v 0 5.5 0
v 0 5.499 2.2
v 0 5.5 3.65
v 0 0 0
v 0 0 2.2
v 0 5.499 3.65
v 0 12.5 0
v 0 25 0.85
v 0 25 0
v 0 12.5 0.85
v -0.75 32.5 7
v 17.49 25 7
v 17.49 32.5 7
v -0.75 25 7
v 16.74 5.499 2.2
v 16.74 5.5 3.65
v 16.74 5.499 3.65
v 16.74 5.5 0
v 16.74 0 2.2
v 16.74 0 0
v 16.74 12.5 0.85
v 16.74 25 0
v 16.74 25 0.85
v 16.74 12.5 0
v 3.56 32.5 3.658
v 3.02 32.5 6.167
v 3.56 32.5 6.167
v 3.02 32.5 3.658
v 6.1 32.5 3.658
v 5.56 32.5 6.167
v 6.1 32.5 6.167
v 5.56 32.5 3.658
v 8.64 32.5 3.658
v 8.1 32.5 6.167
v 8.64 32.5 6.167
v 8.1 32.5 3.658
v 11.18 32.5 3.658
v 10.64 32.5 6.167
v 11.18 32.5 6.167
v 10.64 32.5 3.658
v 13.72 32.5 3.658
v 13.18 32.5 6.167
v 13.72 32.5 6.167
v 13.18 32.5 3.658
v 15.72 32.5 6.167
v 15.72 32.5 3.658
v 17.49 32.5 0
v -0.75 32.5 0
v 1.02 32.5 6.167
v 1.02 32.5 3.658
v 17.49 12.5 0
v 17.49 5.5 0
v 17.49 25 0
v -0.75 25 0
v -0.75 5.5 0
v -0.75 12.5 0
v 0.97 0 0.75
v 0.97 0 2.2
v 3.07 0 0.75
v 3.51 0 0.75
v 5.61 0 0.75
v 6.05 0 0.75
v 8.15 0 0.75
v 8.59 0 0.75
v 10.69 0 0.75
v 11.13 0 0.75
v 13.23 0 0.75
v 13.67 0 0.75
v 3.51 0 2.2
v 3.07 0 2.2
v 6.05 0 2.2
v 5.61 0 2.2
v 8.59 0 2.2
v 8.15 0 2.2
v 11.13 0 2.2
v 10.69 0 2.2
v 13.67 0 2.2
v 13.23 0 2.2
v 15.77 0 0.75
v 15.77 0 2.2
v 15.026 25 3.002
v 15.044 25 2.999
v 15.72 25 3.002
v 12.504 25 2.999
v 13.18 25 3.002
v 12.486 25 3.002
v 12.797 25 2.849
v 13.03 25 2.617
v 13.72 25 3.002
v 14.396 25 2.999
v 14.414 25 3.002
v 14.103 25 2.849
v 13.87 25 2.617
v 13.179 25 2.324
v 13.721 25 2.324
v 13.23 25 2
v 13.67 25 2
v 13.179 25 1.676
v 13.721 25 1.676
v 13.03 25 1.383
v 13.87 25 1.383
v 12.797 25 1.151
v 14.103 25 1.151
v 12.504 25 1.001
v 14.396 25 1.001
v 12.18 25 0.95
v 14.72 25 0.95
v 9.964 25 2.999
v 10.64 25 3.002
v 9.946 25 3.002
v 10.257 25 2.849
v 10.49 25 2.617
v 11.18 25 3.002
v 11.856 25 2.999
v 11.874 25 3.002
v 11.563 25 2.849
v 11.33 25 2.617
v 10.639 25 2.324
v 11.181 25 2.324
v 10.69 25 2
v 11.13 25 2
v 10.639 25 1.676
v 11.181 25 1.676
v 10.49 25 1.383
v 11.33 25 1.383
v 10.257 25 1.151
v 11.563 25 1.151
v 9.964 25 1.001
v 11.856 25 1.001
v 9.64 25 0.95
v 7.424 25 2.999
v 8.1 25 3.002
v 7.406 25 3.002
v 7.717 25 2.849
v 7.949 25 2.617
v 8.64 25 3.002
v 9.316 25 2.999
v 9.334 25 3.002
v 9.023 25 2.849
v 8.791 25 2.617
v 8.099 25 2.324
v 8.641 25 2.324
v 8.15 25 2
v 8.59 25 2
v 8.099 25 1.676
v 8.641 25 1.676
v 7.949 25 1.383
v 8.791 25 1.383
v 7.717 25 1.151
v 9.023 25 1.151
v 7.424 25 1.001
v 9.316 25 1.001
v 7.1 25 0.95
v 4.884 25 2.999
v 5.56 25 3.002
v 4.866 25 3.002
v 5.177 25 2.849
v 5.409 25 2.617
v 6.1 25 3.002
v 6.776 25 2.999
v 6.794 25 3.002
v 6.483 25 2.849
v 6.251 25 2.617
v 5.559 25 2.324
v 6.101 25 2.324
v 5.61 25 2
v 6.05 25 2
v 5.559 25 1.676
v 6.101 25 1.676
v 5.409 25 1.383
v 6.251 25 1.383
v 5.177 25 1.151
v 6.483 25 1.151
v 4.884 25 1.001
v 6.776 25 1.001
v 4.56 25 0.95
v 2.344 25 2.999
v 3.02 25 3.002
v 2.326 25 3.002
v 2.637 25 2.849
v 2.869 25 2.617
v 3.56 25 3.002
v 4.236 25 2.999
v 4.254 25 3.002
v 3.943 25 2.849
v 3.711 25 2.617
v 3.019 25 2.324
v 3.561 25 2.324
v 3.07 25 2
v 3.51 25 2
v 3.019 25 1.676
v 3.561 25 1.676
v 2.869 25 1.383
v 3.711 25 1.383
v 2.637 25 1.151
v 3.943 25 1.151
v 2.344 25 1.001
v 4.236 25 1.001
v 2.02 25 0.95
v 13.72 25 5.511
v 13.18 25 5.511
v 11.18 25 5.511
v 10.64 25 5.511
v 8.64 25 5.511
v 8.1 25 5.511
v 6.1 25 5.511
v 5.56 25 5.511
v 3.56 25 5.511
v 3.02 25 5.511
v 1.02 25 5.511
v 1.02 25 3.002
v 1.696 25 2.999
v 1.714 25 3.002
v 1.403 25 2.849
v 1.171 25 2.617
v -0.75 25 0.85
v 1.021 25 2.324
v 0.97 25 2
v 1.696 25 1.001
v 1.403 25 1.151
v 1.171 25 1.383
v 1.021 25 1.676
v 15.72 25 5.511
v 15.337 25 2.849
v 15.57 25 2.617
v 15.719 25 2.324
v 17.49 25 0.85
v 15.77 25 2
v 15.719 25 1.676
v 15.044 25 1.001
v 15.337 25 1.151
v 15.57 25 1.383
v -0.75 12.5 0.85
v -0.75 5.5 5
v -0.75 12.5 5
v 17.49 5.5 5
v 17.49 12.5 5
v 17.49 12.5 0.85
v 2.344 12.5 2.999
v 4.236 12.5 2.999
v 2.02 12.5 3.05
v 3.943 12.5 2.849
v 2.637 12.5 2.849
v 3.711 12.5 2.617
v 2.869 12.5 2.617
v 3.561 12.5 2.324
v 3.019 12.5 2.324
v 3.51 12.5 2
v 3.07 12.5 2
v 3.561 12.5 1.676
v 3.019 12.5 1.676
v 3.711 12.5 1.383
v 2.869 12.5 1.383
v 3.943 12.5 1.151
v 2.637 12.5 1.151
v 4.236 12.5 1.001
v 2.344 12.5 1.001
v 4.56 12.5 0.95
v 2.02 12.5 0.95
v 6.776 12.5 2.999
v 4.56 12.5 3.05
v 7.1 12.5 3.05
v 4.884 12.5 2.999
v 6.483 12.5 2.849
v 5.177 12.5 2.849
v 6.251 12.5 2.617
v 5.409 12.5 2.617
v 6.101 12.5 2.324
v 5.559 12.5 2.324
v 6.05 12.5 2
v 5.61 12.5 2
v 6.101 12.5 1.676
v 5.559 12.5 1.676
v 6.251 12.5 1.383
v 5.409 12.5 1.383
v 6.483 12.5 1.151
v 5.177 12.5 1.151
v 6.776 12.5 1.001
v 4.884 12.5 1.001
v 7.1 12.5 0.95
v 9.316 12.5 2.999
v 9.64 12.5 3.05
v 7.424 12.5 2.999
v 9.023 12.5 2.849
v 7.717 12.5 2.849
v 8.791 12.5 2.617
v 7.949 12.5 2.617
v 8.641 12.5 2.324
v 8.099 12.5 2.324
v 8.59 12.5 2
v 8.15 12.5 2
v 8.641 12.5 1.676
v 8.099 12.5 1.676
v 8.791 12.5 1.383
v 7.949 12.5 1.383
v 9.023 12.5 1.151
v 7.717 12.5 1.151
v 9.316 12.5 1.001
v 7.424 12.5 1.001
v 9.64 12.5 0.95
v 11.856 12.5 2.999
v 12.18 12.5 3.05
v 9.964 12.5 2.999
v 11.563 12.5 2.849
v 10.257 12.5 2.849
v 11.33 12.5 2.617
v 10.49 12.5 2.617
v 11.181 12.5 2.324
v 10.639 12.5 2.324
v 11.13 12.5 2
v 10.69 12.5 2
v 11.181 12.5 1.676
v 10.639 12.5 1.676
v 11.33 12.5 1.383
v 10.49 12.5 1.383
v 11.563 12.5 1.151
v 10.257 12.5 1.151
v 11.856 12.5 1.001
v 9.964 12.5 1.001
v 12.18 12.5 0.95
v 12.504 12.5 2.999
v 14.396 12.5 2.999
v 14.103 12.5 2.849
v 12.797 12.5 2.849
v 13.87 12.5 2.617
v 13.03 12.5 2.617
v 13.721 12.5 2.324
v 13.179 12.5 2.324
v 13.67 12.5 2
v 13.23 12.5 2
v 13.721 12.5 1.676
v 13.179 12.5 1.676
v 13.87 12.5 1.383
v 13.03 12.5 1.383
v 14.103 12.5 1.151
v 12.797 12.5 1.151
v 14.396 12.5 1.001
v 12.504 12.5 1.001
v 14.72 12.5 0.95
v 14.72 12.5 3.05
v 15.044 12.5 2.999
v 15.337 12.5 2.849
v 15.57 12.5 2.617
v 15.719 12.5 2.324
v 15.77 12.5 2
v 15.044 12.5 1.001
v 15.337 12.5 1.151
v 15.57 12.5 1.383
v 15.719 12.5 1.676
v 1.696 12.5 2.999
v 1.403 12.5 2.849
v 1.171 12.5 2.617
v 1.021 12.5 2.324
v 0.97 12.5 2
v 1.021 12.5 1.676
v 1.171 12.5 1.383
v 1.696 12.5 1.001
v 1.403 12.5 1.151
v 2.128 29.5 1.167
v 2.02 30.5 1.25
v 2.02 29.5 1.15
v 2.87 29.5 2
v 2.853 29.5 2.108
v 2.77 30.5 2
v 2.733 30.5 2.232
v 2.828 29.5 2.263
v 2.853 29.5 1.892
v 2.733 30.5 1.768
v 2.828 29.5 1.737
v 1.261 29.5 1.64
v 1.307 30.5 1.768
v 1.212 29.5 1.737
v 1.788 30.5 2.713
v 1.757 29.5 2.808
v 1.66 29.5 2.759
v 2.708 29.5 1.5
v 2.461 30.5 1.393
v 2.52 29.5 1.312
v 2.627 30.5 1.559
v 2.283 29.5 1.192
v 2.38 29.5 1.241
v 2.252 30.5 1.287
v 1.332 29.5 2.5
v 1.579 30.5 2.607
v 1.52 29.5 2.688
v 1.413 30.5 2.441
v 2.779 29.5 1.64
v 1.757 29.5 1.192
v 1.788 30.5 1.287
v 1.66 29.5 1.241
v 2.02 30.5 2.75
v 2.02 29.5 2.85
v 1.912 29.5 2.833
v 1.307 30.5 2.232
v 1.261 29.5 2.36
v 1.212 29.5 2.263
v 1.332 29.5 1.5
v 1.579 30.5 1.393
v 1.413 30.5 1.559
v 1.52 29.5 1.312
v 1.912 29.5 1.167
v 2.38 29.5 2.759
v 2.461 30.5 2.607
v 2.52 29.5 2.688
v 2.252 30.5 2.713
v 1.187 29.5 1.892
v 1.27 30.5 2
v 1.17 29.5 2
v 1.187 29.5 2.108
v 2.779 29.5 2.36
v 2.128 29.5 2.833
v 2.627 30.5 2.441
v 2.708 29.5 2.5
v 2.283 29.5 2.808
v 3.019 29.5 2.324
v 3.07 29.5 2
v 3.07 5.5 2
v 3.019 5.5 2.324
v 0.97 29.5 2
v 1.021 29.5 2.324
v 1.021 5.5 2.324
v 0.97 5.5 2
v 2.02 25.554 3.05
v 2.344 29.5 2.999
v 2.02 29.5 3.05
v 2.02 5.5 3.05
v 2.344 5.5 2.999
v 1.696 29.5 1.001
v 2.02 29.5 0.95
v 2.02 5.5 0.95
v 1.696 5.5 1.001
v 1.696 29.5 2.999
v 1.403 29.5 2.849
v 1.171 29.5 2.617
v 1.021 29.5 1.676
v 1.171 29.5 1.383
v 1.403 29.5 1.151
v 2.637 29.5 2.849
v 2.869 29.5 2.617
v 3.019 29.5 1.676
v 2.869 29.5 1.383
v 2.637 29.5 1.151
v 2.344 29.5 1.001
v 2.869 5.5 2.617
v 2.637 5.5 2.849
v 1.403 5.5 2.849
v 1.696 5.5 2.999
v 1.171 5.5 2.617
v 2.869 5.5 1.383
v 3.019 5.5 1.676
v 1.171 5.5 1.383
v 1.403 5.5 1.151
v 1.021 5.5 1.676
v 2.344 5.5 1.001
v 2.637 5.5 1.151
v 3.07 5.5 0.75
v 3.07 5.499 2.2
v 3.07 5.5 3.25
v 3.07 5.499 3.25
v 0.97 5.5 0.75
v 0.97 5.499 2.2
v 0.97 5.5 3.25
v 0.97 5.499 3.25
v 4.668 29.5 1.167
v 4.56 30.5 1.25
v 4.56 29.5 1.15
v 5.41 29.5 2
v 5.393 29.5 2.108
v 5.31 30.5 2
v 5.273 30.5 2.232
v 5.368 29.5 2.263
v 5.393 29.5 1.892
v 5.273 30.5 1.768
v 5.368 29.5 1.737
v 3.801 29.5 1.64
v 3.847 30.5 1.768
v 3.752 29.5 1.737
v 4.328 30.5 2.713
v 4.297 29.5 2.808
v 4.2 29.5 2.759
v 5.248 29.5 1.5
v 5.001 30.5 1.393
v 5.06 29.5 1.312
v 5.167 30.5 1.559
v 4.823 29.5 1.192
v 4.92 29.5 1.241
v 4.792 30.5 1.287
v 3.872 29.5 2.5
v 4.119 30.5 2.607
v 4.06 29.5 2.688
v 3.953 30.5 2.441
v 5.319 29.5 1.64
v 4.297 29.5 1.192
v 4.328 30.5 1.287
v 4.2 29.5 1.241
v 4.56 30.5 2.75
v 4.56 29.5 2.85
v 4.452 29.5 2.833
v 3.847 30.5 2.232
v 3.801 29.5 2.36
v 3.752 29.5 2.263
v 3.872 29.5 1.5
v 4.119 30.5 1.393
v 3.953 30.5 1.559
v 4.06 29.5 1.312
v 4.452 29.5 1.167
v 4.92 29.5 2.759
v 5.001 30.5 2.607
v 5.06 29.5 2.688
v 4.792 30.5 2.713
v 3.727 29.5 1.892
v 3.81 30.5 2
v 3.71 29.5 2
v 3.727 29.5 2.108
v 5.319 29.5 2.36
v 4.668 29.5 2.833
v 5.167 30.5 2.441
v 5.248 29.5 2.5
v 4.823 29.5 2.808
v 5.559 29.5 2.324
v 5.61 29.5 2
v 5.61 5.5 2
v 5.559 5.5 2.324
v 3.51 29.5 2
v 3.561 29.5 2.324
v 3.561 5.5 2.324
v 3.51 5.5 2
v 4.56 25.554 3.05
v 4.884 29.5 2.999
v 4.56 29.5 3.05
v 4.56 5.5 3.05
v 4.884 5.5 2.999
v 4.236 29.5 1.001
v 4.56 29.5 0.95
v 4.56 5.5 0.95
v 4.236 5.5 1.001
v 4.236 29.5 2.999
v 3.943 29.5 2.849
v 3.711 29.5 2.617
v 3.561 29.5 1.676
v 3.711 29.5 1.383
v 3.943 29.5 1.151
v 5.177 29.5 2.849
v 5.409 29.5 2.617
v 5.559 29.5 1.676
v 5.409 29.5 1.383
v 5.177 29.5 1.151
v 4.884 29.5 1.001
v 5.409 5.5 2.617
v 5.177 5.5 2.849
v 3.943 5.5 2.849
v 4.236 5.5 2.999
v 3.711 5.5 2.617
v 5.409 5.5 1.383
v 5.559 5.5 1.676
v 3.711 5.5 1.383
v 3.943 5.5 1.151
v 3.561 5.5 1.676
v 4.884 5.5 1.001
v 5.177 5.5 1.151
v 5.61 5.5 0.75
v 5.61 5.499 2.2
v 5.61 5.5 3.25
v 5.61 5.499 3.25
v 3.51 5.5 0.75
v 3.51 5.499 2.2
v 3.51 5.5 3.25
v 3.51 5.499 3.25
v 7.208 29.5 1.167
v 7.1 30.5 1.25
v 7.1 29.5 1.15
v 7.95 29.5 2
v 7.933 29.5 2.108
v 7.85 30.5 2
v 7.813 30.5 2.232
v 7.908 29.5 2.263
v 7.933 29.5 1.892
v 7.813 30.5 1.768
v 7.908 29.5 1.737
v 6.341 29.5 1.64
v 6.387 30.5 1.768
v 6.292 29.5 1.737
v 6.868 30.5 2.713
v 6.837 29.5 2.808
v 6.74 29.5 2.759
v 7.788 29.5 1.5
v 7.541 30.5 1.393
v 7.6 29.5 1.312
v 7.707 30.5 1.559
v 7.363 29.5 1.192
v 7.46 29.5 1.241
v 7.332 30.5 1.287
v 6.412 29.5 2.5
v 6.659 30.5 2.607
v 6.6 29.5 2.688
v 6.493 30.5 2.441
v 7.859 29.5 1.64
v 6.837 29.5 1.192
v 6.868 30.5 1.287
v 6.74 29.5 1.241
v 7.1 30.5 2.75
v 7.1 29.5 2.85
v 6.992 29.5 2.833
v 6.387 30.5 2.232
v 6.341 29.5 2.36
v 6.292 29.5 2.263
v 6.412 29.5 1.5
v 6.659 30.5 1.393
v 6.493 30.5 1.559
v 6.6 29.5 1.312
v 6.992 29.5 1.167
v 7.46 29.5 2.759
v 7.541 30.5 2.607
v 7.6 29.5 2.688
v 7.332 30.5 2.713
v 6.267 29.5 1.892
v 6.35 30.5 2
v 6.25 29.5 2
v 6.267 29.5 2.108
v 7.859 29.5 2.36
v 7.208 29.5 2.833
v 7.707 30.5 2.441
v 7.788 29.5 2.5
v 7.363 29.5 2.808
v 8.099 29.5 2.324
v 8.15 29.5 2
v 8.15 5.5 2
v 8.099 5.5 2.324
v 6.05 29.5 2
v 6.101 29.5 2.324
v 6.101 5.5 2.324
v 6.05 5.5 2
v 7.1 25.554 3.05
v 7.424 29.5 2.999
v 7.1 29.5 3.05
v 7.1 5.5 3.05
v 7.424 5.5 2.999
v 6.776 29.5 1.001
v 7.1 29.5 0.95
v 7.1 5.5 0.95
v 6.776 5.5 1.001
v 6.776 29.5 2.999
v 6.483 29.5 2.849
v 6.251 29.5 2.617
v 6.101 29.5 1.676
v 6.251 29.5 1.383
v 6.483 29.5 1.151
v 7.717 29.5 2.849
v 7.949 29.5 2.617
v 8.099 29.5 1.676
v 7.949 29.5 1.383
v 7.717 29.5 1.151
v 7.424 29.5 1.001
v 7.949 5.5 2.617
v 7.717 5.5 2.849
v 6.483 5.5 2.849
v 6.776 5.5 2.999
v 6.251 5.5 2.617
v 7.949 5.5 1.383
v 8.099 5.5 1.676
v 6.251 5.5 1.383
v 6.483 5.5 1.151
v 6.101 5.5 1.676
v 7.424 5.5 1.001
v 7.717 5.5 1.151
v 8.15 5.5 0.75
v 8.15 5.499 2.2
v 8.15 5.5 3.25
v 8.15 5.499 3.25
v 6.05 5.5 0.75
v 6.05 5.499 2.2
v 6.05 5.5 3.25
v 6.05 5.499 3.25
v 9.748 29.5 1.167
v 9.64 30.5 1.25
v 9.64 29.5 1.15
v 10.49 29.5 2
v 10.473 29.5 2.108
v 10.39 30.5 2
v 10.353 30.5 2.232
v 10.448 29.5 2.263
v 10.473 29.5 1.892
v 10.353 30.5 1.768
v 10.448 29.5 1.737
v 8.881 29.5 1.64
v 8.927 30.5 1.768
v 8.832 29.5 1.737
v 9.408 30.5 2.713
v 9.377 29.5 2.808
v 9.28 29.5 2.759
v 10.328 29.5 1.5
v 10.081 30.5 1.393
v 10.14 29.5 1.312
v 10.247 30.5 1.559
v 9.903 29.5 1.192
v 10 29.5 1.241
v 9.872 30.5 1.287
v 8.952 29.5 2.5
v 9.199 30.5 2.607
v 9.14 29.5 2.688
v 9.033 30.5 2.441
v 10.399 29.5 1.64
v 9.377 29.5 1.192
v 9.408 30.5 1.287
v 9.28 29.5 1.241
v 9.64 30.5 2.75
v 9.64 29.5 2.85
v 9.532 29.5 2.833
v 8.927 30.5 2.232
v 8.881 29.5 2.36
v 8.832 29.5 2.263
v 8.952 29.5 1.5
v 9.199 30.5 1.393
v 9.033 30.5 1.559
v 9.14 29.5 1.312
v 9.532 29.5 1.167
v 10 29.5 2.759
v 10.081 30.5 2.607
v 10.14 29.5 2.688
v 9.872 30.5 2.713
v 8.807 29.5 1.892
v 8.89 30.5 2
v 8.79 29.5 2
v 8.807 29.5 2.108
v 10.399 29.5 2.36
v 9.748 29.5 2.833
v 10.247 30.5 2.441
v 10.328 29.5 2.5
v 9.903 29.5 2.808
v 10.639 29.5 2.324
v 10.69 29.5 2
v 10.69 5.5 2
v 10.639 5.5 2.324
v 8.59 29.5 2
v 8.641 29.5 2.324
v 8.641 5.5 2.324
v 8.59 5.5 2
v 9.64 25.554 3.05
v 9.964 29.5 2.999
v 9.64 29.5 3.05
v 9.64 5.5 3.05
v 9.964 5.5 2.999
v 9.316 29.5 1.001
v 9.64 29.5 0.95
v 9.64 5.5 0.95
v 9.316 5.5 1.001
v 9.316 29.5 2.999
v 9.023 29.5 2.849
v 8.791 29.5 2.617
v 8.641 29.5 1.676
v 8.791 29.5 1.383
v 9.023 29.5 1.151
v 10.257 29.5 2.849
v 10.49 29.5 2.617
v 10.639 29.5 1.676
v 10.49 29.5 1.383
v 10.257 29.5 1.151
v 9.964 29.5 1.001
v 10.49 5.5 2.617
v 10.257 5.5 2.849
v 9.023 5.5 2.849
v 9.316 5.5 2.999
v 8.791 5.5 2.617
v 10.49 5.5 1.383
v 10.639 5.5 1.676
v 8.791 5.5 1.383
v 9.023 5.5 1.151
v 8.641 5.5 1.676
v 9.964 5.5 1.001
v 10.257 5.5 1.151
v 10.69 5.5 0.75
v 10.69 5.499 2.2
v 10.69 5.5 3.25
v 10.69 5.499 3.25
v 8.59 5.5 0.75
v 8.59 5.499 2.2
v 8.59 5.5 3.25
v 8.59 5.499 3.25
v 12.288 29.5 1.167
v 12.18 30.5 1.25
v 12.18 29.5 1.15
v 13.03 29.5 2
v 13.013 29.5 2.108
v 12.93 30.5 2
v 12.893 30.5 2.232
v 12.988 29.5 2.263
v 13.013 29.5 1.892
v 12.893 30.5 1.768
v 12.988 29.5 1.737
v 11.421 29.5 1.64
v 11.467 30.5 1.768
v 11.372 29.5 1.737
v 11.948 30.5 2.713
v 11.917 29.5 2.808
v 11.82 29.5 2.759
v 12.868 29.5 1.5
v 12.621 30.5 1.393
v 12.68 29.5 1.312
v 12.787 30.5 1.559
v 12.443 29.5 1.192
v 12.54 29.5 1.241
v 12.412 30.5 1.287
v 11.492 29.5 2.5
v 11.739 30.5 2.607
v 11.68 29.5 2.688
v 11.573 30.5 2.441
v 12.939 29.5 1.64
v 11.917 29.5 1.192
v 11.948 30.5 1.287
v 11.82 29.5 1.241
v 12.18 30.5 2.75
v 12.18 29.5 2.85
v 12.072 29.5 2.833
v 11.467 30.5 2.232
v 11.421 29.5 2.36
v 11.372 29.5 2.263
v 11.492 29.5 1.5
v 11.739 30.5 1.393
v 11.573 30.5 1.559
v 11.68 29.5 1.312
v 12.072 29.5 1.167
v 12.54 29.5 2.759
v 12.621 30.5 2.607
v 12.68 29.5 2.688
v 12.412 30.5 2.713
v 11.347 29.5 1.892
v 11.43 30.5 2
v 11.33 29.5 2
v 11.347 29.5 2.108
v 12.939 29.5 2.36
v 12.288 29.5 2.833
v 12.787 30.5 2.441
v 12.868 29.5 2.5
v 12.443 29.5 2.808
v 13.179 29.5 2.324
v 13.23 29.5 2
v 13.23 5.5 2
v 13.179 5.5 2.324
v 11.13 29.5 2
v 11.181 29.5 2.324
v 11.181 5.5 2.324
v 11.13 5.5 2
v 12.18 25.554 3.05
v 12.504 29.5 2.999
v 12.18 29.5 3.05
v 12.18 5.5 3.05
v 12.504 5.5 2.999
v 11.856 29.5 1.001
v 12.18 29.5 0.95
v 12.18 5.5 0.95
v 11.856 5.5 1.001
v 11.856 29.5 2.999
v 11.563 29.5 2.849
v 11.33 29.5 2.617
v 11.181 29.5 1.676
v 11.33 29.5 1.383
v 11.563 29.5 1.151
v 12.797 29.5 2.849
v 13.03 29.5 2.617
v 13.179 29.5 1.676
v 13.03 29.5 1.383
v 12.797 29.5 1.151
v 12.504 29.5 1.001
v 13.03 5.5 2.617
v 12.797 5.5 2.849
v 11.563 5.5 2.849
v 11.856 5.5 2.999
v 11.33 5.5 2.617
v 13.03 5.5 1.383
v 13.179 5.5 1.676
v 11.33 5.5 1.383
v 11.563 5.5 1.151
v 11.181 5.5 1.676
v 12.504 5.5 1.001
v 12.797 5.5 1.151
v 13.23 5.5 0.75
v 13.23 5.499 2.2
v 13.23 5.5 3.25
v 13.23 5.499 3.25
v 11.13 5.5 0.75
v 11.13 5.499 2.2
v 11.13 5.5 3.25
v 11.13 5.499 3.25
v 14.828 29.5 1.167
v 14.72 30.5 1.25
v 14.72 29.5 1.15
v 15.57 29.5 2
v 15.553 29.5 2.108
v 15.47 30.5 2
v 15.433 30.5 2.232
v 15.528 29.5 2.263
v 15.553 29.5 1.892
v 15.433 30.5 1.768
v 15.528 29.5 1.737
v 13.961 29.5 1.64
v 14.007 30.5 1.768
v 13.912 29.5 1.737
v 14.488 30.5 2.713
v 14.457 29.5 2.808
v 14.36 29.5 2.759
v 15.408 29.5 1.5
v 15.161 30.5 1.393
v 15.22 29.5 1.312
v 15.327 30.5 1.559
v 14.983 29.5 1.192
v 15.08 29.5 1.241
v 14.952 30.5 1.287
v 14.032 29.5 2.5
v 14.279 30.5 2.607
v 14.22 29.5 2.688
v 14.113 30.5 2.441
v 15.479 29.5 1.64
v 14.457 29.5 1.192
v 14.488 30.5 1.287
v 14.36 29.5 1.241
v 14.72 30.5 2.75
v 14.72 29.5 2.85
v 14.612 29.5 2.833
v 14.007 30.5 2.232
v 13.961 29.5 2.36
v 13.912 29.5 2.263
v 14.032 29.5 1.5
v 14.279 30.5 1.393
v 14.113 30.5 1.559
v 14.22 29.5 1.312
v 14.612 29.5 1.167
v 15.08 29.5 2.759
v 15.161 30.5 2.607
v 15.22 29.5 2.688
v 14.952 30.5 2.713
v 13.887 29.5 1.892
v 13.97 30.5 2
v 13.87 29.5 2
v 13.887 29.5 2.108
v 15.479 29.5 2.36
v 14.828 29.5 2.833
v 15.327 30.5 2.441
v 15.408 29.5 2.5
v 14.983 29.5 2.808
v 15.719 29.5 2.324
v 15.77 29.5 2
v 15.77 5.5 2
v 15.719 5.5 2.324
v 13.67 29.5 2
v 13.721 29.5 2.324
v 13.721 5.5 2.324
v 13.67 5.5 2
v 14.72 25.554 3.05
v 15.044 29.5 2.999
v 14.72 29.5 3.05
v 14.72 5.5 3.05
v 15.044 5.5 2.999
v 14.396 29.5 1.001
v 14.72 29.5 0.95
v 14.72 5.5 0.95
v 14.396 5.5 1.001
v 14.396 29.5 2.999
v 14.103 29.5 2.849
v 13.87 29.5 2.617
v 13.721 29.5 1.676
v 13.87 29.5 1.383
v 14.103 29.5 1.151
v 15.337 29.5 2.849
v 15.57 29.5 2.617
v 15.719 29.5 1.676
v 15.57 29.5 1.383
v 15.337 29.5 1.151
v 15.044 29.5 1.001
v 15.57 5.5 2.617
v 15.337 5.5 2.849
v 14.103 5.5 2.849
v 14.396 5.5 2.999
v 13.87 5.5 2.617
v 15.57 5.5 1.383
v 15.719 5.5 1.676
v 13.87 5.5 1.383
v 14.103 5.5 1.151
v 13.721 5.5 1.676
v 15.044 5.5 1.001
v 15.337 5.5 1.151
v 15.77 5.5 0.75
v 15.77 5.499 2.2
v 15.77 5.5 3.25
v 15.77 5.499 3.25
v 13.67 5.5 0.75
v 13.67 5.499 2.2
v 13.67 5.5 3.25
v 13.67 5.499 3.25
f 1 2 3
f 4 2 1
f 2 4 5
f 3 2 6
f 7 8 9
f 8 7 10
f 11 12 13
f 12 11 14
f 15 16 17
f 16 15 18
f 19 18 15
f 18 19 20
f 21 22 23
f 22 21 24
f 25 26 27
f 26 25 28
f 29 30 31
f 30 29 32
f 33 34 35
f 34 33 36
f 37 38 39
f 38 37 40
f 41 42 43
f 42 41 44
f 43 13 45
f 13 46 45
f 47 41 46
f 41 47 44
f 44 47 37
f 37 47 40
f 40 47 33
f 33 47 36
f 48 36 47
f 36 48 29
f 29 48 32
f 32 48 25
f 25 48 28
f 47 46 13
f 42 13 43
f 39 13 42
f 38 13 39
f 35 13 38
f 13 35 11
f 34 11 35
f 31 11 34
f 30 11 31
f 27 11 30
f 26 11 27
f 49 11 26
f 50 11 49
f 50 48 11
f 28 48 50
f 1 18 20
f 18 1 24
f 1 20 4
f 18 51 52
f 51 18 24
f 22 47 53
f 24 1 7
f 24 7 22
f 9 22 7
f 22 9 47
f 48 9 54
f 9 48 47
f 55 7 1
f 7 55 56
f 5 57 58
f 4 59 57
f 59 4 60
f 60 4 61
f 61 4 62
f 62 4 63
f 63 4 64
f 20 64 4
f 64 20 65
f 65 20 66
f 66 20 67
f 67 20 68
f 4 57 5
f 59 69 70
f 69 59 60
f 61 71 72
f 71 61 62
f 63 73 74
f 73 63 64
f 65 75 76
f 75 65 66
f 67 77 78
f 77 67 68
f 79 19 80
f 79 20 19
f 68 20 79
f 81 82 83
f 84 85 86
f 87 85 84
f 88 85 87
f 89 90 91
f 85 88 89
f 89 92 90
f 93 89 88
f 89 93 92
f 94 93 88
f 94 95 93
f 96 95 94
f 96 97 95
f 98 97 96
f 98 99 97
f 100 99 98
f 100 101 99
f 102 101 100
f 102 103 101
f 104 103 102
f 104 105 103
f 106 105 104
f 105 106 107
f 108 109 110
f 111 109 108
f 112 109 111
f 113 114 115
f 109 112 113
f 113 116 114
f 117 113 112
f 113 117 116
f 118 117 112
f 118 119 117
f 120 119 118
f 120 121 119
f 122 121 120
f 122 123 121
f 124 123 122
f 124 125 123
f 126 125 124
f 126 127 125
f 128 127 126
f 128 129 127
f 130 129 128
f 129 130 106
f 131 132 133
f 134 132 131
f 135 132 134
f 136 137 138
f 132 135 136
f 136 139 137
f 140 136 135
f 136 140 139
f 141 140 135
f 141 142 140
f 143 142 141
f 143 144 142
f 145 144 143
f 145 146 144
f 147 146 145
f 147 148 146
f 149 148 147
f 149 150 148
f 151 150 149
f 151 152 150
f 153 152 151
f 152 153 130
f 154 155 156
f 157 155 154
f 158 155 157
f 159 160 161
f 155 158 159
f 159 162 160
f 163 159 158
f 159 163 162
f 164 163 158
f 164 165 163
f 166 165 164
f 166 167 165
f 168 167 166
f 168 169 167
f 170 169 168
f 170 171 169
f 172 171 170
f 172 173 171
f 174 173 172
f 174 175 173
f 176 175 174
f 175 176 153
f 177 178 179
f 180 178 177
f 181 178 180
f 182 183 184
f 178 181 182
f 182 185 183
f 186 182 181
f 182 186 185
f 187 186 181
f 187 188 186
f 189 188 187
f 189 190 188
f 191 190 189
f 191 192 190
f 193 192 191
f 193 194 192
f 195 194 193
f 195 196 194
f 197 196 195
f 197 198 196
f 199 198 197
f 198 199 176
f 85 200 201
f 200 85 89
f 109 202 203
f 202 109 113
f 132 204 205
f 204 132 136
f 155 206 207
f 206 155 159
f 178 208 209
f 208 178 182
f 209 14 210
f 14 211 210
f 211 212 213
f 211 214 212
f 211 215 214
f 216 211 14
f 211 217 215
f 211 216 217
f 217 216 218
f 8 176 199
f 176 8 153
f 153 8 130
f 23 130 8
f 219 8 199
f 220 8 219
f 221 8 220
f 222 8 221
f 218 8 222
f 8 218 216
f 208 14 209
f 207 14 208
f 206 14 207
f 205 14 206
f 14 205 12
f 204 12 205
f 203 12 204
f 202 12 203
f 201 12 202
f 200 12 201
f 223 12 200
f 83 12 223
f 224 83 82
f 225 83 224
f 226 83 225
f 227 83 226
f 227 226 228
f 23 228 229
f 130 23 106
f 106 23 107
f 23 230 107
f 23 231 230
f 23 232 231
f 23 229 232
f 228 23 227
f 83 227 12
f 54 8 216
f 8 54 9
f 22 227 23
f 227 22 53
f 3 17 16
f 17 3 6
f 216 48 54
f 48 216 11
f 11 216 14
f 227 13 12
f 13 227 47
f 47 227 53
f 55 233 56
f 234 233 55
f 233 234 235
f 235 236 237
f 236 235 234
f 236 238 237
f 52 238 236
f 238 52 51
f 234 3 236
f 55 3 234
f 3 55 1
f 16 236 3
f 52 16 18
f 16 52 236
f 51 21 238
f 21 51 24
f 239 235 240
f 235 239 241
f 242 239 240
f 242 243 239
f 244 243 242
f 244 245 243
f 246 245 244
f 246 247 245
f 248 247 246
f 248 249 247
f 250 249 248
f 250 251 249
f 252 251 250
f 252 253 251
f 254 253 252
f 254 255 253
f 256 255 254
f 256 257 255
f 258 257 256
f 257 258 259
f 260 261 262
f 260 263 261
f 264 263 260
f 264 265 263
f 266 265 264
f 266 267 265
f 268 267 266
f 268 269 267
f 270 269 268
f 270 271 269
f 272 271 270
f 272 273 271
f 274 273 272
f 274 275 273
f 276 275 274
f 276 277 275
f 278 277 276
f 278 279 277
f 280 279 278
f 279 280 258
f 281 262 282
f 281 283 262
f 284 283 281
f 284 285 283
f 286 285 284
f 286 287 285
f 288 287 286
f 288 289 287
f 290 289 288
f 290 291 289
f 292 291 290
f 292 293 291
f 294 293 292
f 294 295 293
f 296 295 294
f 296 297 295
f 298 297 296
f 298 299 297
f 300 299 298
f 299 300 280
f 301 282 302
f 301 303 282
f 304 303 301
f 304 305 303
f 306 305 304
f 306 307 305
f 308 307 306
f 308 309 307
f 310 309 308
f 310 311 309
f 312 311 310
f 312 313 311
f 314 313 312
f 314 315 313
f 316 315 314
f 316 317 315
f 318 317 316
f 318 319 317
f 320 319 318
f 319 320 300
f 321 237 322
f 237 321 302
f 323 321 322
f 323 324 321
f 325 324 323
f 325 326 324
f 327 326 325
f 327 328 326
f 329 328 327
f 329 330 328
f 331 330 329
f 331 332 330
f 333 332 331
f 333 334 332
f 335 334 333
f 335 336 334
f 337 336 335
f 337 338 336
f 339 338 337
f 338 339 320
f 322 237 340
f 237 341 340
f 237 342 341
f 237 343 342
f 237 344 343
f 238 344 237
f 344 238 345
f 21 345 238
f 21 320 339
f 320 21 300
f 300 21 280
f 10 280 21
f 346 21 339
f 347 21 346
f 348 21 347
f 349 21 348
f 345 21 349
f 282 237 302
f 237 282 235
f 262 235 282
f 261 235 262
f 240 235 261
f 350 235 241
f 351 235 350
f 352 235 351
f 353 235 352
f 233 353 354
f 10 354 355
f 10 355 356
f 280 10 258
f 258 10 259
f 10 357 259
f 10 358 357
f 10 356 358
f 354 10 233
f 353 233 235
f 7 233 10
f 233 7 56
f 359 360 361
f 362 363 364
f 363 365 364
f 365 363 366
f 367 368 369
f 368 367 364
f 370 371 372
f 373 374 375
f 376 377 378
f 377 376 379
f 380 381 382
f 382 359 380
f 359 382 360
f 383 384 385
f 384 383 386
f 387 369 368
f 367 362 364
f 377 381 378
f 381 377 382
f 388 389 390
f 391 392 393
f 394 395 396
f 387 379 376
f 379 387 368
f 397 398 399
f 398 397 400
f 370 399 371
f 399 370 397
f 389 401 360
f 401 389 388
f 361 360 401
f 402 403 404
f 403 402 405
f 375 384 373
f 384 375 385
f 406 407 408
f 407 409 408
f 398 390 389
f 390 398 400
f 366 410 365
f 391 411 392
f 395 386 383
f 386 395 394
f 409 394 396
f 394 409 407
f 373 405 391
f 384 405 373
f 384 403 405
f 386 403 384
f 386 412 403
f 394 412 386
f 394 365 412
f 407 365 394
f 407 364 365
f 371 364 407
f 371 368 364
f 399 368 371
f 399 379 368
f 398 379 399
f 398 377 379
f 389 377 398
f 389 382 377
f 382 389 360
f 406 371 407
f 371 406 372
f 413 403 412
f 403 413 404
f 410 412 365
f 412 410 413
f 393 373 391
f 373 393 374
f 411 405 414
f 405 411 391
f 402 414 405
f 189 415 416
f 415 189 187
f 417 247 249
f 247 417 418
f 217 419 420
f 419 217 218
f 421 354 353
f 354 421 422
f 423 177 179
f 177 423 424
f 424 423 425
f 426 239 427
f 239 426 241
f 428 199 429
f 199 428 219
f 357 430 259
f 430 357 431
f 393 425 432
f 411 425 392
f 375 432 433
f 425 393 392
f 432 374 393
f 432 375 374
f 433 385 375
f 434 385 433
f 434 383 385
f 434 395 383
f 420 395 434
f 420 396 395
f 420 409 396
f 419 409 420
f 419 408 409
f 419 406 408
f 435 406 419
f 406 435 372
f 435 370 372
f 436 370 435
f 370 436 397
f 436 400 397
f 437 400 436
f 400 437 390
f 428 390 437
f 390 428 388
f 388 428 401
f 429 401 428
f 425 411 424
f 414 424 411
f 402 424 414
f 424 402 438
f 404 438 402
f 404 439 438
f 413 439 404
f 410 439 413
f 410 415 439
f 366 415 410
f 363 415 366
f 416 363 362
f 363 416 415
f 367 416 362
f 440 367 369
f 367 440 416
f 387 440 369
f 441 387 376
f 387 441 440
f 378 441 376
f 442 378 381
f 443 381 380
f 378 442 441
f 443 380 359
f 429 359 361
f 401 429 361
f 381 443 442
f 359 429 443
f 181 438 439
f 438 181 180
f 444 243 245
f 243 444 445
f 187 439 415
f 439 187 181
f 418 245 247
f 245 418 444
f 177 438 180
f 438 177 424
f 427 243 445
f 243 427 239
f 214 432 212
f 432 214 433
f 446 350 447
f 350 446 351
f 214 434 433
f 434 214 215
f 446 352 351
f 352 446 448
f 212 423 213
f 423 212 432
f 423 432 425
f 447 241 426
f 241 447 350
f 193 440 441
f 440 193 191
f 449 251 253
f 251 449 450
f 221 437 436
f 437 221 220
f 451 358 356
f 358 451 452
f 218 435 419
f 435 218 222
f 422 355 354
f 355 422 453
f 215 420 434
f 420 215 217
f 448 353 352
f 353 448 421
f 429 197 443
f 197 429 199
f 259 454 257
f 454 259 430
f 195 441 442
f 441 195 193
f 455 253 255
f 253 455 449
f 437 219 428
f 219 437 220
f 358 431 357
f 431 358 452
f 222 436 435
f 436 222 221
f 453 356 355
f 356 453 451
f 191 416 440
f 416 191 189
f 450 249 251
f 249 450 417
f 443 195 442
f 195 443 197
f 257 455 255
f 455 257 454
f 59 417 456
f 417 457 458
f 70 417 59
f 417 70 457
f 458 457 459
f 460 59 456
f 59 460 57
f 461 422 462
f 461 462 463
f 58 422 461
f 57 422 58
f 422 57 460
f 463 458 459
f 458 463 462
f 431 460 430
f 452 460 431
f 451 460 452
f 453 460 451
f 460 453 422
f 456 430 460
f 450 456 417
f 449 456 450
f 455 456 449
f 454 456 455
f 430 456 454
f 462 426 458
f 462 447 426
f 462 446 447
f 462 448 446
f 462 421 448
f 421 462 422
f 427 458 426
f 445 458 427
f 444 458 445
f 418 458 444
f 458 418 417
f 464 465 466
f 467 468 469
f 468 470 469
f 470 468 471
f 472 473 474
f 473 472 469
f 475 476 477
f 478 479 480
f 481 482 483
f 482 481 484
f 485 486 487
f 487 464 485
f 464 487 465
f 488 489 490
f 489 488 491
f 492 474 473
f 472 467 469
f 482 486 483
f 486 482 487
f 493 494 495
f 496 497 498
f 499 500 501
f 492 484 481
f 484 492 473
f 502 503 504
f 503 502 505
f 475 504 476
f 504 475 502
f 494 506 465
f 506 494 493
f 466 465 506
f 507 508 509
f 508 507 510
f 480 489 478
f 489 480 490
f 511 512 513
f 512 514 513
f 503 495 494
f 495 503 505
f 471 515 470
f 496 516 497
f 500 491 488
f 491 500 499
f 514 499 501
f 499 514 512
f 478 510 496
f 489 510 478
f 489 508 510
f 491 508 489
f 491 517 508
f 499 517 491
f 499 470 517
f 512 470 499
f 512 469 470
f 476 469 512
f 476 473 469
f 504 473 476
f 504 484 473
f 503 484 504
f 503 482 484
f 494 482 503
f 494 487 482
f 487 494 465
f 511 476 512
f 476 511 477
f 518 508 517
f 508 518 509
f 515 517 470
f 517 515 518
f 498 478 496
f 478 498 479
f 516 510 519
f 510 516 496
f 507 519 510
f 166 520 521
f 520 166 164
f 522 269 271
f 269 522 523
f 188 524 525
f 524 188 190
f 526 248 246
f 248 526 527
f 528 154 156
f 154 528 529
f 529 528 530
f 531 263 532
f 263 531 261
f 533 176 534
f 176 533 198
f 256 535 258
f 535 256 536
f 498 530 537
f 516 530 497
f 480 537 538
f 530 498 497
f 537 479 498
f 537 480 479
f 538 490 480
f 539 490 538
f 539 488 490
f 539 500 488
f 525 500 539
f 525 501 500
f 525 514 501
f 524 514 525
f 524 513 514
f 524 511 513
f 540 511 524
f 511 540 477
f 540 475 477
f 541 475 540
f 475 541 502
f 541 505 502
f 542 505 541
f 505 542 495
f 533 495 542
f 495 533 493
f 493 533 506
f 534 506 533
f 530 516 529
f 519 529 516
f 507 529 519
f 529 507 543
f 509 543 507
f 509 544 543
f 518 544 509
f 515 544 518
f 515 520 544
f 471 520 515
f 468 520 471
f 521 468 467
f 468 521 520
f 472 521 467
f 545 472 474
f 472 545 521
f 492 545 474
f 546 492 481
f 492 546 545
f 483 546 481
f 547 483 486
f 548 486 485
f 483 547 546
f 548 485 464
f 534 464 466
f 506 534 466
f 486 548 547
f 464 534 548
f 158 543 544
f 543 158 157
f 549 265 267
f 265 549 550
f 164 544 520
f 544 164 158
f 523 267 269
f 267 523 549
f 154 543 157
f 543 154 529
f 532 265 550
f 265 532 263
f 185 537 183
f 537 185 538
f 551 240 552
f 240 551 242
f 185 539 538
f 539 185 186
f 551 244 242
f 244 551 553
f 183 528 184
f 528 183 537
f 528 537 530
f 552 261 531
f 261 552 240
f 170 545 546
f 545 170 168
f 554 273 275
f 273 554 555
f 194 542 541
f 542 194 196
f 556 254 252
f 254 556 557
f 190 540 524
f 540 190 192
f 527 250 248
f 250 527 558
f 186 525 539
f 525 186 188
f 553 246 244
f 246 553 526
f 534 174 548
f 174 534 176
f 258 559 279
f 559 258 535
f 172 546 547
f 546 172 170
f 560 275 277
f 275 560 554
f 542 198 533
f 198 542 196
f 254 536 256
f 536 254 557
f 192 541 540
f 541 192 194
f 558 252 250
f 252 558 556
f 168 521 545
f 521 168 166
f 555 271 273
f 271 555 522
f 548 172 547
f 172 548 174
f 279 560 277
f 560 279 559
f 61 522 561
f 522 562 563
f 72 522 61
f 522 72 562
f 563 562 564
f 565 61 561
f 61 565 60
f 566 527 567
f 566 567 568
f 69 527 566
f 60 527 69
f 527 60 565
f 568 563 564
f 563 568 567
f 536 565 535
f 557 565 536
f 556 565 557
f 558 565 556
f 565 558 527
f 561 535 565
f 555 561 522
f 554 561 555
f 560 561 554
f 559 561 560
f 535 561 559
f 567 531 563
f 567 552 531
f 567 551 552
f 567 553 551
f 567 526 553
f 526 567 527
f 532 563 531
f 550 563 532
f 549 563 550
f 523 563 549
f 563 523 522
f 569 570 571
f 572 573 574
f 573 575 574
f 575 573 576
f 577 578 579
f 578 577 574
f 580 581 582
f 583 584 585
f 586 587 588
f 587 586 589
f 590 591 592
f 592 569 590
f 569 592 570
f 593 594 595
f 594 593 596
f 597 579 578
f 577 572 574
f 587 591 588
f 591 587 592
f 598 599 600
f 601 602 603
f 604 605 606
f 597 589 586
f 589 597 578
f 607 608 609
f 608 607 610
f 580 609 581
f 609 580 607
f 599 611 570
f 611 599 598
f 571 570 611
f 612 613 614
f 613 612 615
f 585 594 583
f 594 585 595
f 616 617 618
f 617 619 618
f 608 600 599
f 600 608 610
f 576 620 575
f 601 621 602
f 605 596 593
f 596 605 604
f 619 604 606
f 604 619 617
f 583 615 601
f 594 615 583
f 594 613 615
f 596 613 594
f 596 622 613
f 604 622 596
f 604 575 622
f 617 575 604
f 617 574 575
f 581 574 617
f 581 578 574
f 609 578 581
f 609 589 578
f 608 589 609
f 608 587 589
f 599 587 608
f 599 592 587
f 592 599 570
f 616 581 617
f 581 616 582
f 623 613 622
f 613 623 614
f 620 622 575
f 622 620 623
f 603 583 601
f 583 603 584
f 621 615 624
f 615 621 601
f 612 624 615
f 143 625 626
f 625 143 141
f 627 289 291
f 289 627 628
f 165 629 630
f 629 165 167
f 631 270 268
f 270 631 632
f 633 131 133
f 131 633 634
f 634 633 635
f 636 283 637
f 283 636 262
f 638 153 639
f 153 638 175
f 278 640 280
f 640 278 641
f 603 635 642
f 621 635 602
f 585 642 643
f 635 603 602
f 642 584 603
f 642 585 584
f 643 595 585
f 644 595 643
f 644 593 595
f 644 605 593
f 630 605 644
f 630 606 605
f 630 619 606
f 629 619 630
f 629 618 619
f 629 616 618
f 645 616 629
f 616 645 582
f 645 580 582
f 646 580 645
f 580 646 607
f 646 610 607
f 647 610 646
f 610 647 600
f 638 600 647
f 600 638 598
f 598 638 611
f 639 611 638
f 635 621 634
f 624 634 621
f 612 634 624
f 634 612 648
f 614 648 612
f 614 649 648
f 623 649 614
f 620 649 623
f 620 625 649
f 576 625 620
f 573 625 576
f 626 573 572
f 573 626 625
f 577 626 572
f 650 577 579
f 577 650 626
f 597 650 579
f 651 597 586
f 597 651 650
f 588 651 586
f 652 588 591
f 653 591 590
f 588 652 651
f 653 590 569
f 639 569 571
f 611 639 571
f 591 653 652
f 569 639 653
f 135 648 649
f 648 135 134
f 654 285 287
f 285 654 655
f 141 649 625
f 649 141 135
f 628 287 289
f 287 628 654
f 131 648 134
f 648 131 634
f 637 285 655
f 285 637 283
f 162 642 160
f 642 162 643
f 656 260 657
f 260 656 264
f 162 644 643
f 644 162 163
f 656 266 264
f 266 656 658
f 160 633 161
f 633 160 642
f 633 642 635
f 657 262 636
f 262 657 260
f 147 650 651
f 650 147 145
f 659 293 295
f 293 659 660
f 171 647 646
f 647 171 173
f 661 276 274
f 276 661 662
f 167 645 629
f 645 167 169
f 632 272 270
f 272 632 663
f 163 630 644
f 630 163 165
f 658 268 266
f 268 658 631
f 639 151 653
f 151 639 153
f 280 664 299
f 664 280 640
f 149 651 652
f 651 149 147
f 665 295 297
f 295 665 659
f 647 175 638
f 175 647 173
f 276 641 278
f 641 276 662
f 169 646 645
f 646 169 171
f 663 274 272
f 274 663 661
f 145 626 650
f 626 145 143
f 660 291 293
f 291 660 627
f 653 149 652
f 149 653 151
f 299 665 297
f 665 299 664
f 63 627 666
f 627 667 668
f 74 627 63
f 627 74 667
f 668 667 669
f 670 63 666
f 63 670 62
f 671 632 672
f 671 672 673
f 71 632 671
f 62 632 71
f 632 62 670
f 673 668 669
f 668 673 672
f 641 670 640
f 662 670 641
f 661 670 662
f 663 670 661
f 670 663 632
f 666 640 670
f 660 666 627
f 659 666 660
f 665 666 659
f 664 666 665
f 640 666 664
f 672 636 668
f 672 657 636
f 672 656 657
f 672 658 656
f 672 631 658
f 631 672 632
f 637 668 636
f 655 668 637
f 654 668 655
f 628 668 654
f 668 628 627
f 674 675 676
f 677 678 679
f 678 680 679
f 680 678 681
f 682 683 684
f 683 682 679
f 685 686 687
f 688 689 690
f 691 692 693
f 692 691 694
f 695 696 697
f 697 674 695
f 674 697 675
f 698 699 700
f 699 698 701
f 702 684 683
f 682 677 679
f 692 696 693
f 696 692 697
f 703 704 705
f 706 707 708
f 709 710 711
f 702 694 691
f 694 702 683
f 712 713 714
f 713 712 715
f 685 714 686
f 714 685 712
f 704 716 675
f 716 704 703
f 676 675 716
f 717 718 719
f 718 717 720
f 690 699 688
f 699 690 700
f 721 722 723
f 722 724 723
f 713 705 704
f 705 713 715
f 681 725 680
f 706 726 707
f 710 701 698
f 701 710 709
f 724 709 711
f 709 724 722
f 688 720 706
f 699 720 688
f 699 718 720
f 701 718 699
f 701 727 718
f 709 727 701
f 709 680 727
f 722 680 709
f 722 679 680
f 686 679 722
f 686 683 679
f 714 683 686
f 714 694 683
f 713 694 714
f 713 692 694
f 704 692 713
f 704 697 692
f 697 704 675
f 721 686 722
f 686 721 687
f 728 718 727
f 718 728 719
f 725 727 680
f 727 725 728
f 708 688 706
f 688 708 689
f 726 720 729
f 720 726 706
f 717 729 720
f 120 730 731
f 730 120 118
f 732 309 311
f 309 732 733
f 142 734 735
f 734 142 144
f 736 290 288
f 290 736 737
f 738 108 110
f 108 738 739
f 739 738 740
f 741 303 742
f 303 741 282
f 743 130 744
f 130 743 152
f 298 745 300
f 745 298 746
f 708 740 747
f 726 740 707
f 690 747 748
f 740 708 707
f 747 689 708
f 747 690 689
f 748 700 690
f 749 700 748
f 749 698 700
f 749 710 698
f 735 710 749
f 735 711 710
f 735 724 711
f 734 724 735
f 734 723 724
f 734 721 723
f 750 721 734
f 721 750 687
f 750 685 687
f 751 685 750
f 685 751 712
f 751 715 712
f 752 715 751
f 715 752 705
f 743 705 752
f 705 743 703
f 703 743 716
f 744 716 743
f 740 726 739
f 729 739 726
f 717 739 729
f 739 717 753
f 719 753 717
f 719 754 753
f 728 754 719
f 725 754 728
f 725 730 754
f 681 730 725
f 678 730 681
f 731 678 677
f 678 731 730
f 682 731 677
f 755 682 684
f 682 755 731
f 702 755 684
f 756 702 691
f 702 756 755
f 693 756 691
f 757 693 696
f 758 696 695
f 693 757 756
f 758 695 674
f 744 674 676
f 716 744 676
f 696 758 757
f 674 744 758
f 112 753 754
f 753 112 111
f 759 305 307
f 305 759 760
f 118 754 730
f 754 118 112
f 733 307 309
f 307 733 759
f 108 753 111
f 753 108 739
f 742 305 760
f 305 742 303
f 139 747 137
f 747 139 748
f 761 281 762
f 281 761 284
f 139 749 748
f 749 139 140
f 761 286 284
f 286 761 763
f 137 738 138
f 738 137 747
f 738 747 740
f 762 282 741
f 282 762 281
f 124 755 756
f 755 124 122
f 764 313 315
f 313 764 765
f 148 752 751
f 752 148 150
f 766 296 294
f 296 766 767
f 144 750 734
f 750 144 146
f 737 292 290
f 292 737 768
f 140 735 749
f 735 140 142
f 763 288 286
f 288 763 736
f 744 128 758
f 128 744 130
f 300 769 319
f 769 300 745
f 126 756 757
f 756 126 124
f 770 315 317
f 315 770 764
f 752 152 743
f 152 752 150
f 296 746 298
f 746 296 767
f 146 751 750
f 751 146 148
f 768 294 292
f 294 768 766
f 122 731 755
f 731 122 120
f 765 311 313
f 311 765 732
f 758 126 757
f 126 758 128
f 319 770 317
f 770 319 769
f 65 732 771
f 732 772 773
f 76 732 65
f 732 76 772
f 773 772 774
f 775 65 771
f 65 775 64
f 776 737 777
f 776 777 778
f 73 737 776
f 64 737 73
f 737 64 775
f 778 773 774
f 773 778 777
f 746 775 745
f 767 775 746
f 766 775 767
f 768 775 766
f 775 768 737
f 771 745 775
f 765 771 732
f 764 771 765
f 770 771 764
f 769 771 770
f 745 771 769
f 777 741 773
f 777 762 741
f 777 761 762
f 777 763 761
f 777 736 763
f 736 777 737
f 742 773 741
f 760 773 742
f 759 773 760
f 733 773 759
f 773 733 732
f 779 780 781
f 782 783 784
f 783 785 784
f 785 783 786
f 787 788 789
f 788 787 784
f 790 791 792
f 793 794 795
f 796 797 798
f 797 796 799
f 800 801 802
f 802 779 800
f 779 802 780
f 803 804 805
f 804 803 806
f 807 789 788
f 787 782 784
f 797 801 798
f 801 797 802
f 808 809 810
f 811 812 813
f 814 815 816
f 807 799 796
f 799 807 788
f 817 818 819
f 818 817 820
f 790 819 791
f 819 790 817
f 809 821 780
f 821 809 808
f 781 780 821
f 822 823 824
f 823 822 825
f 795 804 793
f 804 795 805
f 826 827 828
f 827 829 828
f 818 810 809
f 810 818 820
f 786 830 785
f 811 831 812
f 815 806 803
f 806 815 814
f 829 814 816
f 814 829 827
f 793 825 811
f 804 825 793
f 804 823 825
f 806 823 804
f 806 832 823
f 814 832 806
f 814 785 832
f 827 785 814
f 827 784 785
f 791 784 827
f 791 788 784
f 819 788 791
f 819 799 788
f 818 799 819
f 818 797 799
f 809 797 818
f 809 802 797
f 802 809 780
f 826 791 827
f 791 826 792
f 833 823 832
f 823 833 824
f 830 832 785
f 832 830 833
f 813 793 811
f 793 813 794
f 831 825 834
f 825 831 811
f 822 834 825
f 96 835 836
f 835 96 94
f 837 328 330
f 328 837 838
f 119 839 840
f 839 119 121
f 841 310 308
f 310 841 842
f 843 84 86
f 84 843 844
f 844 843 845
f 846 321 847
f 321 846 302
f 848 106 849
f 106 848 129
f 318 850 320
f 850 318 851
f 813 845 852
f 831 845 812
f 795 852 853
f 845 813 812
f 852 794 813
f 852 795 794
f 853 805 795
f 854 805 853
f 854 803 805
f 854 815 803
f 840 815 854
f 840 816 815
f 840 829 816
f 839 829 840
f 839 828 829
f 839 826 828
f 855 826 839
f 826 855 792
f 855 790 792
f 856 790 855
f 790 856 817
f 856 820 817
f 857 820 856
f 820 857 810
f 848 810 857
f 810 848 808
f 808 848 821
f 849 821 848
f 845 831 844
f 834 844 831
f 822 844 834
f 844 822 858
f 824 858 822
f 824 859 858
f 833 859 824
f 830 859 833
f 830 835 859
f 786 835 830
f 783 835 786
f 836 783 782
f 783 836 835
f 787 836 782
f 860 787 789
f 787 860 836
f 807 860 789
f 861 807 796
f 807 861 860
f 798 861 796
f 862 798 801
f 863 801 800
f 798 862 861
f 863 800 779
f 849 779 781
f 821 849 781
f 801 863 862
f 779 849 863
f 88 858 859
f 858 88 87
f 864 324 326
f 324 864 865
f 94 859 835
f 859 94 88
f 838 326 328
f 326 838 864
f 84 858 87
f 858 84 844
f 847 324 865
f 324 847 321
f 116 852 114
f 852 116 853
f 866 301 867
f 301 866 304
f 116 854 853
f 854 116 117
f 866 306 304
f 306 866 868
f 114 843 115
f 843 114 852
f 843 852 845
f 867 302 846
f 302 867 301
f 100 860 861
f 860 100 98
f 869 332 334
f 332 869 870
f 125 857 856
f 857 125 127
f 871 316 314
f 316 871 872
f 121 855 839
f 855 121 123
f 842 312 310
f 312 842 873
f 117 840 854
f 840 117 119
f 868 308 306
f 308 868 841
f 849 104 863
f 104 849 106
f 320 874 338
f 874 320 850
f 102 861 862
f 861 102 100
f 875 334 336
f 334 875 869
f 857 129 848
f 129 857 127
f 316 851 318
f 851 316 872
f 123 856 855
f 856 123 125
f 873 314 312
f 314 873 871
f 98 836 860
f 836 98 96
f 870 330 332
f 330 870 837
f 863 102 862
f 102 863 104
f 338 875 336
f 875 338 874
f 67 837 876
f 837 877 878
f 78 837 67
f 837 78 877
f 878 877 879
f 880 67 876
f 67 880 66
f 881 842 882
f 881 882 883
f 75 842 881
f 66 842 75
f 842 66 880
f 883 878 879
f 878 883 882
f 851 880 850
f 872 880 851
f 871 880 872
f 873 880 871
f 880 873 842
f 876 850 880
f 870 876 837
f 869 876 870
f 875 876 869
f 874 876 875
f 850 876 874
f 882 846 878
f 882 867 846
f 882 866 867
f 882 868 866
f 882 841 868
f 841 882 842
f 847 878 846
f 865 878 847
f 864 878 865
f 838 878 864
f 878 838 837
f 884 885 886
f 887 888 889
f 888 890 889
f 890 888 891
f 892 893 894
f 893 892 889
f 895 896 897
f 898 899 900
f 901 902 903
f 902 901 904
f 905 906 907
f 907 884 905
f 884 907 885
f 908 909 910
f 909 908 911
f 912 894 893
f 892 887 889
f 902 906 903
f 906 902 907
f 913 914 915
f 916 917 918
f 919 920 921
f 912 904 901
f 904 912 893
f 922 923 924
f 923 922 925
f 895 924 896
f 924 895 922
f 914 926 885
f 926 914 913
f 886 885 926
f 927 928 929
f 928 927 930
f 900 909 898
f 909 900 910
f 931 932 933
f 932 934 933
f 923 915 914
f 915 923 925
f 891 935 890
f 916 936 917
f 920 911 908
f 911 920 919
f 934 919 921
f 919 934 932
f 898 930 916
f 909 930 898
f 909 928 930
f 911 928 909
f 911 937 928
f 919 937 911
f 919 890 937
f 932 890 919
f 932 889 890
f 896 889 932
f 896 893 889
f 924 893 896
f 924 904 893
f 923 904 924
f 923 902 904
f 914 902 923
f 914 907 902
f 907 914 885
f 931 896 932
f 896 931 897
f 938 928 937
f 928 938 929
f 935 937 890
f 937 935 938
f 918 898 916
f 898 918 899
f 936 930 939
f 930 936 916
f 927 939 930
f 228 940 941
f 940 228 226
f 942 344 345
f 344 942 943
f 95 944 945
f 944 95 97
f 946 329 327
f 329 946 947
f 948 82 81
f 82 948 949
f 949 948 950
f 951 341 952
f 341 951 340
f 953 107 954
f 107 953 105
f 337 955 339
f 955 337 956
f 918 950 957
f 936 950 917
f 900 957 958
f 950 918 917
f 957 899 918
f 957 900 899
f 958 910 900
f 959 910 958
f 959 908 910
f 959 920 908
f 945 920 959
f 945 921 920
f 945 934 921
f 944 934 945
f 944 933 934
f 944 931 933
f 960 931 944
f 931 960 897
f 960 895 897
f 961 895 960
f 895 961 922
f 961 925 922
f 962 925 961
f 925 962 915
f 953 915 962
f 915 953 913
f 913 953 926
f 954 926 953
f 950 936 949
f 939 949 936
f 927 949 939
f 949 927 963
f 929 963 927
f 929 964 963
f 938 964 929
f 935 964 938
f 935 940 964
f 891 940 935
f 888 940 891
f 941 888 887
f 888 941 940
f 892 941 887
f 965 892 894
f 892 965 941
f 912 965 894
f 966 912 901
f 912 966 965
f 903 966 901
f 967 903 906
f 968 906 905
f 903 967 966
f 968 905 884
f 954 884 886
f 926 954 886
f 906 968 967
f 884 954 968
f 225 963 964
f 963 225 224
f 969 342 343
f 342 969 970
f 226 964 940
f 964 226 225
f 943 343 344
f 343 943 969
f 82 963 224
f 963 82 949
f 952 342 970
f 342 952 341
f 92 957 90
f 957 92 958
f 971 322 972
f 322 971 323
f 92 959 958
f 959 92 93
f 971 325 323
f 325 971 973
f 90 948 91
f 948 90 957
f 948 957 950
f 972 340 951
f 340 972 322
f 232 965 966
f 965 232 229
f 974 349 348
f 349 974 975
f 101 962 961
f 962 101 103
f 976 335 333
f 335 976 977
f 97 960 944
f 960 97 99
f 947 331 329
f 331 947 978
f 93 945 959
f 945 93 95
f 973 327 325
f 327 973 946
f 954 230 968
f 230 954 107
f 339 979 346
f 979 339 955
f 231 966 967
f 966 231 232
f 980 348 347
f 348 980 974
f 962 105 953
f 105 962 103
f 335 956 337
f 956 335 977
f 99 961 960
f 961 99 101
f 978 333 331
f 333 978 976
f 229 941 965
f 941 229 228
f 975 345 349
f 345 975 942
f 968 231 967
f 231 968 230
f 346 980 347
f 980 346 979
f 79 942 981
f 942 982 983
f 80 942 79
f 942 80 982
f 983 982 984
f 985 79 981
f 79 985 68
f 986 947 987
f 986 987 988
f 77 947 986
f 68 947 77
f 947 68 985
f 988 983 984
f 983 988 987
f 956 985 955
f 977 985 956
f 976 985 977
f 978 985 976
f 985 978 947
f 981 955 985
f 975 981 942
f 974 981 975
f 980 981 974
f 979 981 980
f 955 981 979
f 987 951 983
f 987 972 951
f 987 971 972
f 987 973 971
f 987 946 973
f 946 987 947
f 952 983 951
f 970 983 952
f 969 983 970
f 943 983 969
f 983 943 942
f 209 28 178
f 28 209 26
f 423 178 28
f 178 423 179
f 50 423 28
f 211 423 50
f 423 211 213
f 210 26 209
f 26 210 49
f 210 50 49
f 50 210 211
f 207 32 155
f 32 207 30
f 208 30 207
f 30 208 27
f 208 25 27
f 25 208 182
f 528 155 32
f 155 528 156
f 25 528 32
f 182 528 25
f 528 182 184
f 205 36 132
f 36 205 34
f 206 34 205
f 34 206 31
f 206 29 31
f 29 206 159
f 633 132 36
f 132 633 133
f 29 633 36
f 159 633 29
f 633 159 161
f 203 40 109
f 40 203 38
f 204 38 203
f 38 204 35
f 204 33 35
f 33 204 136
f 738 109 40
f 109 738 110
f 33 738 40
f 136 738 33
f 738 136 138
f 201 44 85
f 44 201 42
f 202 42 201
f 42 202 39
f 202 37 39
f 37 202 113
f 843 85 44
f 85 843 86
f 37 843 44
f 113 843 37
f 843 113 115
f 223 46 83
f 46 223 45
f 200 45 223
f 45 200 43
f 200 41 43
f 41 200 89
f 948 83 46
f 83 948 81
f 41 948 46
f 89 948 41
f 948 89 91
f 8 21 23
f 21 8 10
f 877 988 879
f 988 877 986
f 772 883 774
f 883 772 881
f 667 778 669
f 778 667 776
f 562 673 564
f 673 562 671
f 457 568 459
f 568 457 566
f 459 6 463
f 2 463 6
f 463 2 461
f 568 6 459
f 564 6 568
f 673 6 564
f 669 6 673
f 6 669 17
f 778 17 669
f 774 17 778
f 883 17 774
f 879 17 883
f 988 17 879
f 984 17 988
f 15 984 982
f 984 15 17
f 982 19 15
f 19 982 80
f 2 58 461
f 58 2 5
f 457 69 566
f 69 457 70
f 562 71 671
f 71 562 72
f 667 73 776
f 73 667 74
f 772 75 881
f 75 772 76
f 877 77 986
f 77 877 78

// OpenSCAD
$fn=20;
/*
  Pogo Pin Serial Adaptor
  Author: Brian Khuu 2019
  
  This is similar to https://hackaday.com/2017/08/04/pogo-pin-serial-adapter-thing/
  But is fully 3D printed without need for PCB. This may be useful for Arduino serial adaptors.
  
  I used P100-E2 probes for this
*/

// Designed For Printer Nozzle
printer_nozzle=0.4;

// Base Thickness
base_thickness = 0.1;

/* probe pin spec */
ppext = 8; // Probe extention length
ppbody = 25; // Body of the probe
ppdia = 1.5; // probe pin diameter

ppdiatol = 0.6; // tolerance for fitting
ppinset = 2.5;

ppdiaoutset = ppext-ppinset; // How far to space out to allow for side fits
echo(ppdiaoutset);

/* Castellated Module Pin Spacing and count */

// Pin Count
ppc = 6;

// Pin Spacing
pps = 2.54;

// PCB Thickness
pcb_thickness = 1.1; // 1mm Open Log Clone

// PCB Probe Offset
pcb_probe_offset = 1.3;

/* Clip */
clip_tab = 5; // Clip tab to more easily open the clip

/* pcb */
pcb_h = 2; // pcb thickness

/* calc */
boxx = ppc * pps + ppdia;
boxy = 2 + ppbody + ppdiaoutset;
boxh = base_thickness+pcb_probe_offset+ppdiatol+5;

module probe_pin_req()
{
  inset=0;
  translate([0,0,-ppbody])
  union()
  {
    translate([0,0,0])
      cylinder(r1=(ppdia)/2,r2=(ppdia+ppdiatol)/2, h=3);
    translate([0,0,1])
      cylinder(r=(ppdia+ppdiatol)/2, h=ppbody+ppext+1);
    %color("gold") cylinder(r=ppdia/2, h=ppbody);
    %color("silver") translate([0,0,ppbody])
      cylinder(r=ppdia/2, r2=0, h=ppext);
  }
}

module openlog_clone_programmer_jig()
{
  difference()
  {  
    /* Bulk */
    union()
    {
      difference()
      {
        cube([boxx,boxy,boxh]);
        translate([-5, 0, base_thickness+pcb_probe_offset+ppdia*1.5]) 
          cube([ppc * pps+10,ppbody, 5]);
      }
      translate([-(ppdia)/2, ppdiaoutset+7+ppbody/2, 0]) 
        cube([boxx+(ppdia),boxy-(ppdiaoutset+7+ppbody/2), boxh]);
      translate([-(ppdia)/2, ppdiaoutset, 0]) 
        cube([boxx+(ppdia),7, 5]);
    }

    /* Probe Access Cutout */
    translate([-5, ppdiaoutset+7, base_thickness+ppdia/2]) 
      cube([ppc * pps+10,ppbody/2, 10]);
      
    /* Module Cutout */
    translate([0, -0.001, base_thickness+ppdia+ppdiatol]) 
      cube([boxx,ppdiaoutset, boxh]);
      
    /* Probe */
    for ( xi = [0 : 1 : ppc-1] )
    {
      translate([ppdia/2+pps/2+pps*xi, 0, base_thickness])
      union()
      {
        translate([0, ppdiaoutset, pcb_probe_offset+ppdiatol])
          rotate([90,0,0])
          probe_pin_req();
        
        translate([0, ppdiaoutset, pcb_probe_offset+ppdiatol])
          rotate([180,0,0])
            translate([0, (ppdiaoutset)/2, 0])
              cube([ppdia+ppdiatol,(ppdiaoutset),ppdia+1], center=true);
      }
    }
    
    /* Wire Guide (To solder onto the probe) */
    for ( xii = [0 : 1 : ppc-1] )
    {
      translate([ppdia/2+pps/2+pps*xii, boxy+1, base_thickness+ppdia+1.5+pcb_probe_offset+ppdiatol])
        rotate([95,0,0])
          cube([2,2.5,20],center=true);
    }
  }
}

openlog_clone_programmer_jig();
